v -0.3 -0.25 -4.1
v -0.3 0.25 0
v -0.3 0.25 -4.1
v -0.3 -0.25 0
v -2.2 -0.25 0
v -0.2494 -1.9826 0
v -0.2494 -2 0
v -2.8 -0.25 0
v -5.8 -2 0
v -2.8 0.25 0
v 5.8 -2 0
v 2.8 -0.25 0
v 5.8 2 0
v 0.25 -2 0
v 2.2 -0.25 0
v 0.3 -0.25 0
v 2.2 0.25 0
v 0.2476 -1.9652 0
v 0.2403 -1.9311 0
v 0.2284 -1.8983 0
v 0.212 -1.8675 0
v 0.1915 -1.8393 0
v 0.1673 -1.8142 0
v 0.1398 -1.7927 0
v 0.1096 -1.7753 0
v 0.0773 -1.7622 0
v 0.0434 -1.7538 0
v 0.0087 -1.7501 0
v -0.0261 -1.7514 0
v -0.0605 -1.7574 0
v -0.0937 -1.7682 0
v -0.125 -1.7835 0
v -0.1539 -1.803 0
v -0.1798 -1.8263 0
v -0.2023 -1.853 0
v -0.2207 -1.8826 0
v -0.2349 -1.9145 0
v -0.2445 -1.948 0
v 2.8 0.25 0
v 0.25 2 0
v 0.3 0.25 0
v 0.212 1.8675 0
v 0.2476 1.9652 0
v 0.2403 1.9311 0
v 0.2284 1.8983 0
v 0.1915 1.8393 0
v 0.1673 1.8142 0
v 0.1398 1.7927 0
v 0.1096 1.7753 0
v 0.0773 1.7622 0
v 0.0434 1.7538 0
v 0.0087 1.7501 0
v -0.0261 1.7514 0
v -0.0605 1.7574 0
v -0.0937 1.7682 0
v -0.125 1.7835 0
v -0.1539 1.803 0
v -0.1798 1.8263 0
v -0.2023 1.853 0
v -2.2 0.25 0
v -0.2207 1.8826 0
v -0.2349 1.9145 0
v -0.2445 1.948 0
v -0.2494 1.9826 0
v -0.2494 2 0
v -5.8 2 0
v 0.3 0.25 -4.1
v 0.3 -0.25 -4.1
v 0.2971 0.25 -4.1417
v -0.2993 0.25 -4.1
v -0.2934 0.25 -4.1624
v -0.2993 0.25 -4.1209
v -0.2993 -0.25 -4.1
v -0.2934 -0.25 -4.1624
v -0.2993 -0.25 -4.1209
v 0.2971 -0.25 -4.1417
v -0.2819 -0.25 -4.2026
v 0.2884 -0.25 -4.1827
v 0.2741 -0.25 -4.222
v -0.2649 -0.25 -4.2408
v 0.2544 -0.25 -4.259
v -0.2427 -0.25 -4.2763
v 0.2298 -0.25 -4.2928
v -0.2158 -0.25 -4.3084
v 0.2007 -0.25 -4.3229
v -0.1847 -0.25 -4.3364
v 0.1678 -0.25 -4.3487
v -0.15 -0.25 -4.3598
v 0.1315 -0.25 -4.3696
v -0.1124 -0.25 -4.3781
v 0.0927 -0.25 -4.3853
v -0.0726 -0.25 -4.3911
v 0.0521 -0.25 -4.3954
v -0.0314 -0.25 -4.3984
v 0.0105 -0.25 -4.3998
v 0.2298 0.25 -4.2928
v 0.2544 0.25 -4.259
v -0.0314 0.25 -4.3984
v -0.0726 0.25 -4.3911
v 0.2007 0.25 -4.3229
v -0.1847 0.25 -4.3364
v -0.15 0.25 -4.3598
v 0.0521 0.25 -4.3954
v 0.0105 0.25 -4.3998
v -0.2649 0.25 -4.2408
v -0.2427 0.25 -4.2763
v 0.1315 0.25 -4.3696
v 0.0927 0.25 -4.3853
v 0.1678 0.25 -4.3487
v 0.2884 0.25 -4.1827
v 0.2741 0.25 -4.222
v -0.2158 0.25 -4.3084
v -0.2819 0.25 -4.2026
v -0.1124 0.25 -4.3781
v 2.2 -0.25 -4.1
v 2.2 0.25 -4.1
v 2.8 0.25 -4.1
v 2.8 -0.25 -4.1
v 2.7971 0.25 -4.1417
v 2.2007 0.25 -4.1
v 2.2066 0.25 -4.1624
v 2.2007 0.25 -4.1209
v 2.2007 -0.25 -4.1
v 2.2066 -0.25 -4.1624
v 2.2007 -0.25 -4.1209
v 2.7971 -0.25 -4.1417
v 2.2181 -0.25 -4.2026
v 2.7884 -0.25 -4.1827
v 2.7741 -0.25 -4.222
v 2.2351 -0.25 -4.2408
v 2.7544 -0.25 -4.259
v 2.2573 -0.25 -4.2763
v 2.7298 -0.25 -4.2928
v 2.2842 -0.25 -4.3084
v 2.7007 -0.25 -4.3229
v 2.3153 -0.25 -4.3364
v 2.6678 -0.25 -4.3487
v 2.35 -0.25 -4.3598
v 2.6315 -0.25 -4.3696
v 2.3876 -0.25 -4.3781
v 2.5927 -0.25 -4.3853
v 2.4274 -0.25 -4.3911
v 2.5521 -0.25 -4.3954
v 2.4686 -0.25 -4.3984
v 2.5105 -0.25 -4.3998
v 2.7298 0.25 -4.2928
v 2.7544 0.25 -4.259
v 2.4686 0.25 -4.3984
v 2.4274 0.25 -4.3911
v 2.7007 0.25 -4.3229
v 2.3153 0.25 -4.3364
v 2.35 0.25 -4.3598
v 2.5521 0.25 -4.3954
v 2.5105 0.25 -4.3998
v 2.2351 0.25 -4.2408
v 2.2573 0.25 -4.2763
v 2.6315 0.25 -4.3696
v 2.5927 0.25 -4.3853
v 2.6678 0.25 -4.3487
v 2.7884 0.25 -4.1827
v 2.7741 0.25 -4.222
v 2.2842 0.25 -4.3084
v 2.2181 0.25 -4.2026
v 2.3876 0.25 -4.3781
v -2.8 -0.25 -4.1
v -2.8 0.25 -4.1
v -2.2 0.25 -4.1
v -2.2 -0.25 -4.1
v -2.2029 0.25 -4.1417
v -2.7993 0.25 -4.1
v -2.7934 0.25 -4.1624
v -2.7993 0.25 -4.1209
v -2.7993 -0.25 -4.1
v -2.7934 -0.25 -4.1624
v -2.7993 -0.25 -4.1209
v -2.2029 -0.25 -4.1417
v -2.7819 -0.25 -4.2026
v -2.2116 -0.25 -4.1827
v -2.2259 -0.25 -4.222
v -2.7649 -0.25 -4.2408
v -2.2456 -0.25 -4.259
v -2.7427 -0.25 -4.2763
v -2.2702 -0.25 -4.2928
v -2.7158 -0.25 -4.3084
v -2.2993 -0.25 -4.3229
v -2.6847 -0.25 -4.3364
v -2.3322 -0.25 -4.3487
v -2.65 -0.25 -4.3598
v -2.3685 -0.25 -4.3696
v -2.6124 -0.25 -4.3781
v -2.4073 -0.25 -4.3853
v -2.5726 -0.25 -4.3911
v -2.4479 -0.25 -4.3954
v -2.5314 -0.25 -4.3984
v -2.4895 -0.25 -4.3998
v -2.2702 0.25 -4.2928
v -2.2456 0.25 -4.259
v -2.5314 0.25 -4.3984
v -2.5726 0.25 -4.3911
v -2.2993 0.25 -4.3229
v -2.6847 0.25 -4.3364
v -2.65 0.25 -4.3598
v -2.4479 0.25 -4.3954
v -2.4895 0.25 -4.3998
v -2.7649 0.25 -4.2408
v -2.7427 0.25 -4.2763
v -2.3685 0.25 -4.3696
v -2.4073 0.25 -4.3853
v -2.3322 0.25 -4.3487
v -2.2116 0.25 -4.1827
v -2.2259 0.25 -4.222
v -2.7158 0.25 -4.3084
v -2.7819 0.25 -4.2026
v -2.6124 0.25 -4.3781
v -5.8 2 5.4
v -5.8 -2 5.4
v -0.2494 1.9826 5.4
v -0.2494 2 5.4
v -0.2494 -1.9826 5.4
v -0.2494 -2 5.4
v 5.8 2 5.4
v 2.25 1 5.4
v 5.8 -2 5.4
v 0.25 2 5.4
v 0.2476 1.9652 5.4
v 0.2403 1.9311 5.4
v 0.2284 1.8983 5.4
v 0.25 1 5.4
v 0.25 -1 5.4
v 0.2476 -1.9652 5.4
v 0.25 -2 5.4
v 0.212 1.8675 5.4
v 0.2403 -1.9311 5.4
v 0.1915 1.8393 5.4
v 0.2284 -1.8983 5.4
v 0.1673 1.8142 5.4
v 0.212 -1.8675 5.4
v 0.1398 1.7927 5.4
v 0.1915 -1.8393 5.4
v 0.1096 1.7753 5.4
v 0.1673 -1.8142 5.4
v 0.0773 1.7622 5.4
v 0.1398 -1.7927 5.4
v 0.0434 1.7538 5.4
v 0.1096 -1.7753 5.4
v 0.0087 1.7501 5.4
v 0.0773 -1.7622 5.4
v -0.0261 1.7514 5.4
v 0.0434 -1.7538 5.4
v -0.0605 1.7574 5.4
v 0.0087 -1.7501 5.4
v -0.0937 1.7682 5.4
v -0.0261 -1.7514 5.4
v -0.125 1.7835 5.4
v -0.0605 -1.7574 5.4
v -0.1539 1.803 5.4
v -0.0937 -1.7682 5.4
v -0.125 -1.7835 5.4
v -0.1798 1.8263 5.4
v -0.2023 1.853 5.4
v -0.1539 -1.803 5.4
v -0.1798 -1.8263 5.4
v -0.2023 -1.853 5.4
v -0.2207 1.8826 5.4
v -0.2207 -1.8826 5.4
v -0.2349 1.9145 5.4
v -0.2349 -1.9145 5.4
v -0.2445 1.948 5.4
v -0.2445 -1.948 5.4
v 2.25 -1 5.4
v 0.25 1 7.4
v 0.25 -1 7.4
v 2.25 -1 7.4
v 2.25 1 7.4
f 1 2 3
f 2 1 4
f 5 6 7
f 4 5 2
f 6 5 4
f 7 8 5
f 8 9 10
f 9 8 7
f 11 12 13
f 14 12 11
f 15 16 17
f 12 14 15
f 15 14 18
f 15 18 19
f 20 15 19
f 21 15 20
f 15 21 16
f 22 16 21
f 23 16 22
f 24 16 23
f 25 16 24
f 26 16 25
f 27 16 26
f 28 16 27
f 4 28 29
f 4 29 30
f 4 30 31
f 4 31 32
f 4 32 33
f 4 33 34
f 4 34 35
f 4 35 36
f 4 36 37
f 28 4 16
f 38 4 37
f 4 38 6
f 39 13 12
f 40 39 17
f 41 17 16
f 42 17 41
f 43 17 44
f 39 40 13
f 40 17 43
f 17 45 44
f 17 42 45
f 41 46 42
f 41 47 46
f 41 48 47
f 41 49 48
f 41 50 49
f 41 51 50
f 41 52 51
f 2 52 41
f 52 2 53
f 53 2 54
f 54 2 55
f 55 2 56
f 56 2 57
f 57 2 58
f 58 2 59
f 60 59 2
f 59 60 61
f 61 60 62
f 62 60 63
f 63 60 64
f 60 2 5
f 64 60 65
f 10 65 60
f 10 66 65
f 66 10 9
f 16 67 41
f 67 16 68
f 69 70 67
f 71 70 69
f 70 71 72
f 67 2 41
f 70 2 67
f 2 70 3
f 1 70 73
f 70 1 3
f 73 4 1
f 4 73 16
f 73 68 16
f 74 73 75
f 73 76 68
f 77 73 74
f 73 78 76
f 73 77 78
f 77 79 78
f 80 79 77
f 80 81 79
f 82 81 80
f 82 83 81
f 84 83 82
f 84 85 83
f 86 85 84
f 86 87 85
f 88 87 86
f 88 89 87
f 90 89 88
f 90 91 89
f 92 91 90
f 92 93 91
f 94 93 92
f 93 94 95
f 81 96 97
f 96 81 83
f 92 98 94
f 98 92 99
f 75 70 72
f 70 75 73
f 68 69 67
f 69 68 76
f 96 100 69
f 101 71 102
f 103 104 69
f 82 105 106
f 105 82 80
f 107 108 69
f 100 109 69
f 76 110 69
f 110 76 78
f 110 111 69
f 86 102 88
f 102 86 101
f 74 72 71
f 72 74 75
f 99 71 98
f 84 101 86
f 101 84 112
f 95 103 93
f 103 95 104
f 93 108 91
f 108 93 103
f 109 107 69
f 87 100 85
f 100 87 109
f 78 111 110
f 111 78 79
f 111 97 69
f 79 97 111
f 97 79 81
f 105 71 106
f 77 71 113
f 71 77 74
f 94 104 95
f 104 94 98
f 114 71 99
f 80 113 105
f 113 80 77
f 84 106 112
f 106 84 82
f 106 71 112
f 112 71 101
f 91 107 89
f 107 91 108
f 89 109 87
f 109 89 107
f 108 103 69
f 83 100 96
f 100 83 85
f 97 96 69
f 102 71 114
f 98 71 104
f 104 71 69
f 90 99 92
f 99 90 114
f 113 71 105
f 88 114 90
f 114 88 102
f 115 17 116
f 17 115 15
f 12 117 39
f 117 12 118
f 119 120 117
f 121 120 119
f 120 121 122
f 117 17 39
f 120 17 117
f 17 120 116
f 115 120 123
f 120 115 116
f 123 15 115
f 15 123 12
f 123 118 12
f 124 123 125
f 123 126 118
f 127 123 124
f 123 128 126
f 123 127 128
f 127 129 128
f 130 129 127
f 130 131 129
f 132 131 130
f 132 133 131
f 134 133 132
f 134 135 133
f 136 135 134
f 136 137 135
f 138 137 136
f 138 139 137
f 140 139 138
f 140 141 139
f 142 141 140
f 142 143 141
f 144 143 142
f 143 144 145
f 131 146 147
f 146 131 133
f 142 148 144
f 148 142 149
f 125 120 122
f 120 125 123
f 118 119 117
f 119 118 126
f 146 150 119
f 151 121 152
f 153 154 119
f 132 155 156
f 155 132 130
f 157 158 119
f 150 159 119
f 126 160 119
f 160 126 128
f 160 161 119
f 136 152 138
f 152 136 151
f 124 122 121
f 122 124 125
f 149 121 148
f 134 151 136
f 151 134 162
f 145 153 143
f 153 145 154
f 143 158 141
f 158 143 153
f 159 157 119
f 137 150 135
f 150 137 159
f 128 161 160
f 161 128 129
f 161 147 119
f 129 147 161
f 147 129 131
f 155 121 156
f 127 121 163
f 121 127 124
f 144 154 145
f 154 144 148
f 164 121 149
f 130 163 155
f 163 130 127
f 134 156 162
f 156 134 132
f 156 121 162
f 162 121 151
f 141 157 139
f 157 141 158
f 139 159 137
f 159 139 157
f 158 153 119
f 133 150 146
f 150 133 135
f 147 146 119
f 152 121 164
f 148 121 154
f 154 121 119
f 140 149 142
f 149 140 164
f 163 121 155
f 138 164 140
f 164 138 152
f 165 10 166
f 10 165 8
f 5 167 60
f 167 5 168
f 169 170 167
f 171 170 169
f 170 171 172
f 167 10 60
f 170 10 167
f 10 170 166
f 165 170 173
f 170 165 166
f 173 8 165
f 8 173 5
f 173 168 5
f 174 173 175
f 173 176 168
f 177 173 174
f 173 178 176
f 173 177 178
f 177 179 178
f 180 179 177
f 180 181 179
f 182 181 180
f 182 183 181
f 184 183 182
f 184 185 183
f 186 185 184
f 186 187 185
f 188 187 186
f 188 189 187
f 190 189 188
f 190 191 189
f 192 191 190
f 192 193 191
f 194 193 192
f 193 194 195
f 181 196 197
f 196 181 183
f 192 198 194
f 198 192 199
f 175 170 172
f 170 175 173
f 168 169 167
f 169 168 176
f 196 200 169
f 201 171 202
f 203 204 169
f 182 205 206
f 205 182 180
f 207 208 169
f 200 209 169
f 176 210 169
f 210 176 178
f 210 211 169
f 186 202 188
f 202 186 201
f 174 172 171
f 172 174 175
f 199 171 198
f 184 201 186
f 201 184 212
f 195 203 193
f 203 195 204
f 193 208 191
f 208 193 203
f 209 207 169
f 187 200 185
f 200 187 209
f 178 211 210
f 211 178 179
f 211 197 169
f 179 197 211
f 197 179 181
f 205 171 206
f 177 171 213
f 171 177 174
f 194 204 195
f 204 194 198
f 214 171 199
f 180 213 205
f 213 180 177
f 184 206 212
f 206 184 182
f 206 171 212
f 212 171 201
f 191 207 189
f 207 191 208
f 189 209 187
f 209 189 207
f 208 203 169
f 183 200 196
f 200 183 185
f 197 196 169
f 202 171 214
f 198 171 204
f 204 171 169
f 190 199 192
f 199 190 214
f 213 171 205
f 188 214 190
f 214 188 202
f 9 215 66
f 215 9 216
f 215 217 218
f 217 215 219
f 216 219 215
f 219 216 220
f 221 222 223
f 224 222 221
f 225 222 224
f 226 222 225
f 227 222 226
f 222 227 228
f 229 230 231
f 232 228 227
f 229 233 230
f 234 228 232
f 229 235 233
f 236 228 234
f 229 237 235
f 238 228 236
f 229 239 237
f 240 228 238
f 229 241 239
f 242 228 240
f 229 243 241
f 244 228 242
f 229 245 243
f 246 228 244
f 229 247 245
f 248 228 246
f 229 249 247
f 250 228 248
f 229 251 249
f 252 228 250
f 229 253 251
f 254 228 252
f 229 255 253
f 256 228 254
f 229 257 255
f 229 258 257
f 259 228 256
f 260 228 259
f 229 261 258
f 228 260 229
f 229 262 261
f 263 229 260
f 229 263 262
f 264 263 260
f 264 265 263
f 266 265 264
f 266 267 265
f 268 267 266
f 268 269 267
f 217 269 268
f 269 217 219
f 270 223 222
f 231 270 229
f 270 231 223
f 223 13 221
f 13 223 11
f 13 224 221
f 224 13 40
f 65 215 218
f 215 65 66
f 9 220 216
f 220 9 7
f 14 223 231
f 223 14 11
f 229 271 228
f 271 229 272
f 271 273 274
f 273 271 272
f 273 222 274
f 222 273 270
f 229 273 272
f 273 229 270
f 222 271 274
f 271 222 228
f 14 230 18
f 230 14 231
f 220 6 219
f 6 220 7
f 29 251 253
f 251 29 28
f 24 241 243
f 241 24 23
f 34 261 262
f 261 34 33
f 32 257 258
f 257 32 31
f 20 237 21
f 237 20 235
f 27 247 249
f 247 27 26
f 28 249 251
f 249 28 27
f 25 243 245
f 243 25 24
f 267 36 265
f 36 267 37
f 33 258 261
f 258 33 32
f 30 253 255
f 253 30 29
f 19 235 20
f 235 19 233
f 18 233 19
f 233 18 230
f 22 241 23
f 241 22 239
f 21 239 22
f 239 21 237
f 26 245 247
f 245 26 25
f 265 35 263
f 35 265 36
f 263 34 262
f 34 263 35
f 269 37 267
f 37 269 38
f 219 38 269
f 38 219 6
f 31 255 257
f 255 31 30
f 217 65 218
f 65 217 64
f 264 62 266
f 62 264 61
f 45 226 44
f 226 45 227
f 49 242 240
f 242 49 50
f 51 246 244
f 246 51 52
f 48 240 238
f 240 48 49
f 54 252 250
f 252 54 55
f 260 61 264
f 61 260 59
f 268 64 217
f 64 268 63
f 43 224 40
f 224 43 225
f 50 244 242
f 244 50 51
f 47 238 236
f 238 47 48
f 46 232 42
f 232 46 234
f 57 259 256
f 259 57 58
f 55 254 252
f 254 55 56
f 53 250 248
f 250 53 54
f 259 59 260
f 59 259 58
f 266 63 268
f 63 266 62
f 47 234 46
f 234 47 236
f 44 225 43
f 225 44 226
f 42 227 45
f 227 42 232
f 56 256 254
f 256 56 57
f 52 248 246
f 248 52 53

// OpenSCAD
$fn = 45;

difference(){
	union(){
		translate([-11.6/2, -4/2, 0])
		cube([11.6, 4, 5.4]);
		translate([0.25, -1, 5.4])
		cube(2);
		
		translate([2.5, 0, 0])
		lead();
		
		translate([-2.5, 0, 0])
		lead();
		
		lead();
	}
	translate([0, -2, 0])
	cylinder(d = 0.5, h = 5.4);
	translate([0, 2, 0])
	cylinder(d = 0.5, h = 5.4);
}
module lead(){
	translate([0, 0, -2.05])
	cube([0.6, 0.5, 4.1], true);
	translate([0, 0, -4.1])
	rotate([90, 0, 0])
	cylinder(d = 0.6, h = 0.5, center = true);
}
